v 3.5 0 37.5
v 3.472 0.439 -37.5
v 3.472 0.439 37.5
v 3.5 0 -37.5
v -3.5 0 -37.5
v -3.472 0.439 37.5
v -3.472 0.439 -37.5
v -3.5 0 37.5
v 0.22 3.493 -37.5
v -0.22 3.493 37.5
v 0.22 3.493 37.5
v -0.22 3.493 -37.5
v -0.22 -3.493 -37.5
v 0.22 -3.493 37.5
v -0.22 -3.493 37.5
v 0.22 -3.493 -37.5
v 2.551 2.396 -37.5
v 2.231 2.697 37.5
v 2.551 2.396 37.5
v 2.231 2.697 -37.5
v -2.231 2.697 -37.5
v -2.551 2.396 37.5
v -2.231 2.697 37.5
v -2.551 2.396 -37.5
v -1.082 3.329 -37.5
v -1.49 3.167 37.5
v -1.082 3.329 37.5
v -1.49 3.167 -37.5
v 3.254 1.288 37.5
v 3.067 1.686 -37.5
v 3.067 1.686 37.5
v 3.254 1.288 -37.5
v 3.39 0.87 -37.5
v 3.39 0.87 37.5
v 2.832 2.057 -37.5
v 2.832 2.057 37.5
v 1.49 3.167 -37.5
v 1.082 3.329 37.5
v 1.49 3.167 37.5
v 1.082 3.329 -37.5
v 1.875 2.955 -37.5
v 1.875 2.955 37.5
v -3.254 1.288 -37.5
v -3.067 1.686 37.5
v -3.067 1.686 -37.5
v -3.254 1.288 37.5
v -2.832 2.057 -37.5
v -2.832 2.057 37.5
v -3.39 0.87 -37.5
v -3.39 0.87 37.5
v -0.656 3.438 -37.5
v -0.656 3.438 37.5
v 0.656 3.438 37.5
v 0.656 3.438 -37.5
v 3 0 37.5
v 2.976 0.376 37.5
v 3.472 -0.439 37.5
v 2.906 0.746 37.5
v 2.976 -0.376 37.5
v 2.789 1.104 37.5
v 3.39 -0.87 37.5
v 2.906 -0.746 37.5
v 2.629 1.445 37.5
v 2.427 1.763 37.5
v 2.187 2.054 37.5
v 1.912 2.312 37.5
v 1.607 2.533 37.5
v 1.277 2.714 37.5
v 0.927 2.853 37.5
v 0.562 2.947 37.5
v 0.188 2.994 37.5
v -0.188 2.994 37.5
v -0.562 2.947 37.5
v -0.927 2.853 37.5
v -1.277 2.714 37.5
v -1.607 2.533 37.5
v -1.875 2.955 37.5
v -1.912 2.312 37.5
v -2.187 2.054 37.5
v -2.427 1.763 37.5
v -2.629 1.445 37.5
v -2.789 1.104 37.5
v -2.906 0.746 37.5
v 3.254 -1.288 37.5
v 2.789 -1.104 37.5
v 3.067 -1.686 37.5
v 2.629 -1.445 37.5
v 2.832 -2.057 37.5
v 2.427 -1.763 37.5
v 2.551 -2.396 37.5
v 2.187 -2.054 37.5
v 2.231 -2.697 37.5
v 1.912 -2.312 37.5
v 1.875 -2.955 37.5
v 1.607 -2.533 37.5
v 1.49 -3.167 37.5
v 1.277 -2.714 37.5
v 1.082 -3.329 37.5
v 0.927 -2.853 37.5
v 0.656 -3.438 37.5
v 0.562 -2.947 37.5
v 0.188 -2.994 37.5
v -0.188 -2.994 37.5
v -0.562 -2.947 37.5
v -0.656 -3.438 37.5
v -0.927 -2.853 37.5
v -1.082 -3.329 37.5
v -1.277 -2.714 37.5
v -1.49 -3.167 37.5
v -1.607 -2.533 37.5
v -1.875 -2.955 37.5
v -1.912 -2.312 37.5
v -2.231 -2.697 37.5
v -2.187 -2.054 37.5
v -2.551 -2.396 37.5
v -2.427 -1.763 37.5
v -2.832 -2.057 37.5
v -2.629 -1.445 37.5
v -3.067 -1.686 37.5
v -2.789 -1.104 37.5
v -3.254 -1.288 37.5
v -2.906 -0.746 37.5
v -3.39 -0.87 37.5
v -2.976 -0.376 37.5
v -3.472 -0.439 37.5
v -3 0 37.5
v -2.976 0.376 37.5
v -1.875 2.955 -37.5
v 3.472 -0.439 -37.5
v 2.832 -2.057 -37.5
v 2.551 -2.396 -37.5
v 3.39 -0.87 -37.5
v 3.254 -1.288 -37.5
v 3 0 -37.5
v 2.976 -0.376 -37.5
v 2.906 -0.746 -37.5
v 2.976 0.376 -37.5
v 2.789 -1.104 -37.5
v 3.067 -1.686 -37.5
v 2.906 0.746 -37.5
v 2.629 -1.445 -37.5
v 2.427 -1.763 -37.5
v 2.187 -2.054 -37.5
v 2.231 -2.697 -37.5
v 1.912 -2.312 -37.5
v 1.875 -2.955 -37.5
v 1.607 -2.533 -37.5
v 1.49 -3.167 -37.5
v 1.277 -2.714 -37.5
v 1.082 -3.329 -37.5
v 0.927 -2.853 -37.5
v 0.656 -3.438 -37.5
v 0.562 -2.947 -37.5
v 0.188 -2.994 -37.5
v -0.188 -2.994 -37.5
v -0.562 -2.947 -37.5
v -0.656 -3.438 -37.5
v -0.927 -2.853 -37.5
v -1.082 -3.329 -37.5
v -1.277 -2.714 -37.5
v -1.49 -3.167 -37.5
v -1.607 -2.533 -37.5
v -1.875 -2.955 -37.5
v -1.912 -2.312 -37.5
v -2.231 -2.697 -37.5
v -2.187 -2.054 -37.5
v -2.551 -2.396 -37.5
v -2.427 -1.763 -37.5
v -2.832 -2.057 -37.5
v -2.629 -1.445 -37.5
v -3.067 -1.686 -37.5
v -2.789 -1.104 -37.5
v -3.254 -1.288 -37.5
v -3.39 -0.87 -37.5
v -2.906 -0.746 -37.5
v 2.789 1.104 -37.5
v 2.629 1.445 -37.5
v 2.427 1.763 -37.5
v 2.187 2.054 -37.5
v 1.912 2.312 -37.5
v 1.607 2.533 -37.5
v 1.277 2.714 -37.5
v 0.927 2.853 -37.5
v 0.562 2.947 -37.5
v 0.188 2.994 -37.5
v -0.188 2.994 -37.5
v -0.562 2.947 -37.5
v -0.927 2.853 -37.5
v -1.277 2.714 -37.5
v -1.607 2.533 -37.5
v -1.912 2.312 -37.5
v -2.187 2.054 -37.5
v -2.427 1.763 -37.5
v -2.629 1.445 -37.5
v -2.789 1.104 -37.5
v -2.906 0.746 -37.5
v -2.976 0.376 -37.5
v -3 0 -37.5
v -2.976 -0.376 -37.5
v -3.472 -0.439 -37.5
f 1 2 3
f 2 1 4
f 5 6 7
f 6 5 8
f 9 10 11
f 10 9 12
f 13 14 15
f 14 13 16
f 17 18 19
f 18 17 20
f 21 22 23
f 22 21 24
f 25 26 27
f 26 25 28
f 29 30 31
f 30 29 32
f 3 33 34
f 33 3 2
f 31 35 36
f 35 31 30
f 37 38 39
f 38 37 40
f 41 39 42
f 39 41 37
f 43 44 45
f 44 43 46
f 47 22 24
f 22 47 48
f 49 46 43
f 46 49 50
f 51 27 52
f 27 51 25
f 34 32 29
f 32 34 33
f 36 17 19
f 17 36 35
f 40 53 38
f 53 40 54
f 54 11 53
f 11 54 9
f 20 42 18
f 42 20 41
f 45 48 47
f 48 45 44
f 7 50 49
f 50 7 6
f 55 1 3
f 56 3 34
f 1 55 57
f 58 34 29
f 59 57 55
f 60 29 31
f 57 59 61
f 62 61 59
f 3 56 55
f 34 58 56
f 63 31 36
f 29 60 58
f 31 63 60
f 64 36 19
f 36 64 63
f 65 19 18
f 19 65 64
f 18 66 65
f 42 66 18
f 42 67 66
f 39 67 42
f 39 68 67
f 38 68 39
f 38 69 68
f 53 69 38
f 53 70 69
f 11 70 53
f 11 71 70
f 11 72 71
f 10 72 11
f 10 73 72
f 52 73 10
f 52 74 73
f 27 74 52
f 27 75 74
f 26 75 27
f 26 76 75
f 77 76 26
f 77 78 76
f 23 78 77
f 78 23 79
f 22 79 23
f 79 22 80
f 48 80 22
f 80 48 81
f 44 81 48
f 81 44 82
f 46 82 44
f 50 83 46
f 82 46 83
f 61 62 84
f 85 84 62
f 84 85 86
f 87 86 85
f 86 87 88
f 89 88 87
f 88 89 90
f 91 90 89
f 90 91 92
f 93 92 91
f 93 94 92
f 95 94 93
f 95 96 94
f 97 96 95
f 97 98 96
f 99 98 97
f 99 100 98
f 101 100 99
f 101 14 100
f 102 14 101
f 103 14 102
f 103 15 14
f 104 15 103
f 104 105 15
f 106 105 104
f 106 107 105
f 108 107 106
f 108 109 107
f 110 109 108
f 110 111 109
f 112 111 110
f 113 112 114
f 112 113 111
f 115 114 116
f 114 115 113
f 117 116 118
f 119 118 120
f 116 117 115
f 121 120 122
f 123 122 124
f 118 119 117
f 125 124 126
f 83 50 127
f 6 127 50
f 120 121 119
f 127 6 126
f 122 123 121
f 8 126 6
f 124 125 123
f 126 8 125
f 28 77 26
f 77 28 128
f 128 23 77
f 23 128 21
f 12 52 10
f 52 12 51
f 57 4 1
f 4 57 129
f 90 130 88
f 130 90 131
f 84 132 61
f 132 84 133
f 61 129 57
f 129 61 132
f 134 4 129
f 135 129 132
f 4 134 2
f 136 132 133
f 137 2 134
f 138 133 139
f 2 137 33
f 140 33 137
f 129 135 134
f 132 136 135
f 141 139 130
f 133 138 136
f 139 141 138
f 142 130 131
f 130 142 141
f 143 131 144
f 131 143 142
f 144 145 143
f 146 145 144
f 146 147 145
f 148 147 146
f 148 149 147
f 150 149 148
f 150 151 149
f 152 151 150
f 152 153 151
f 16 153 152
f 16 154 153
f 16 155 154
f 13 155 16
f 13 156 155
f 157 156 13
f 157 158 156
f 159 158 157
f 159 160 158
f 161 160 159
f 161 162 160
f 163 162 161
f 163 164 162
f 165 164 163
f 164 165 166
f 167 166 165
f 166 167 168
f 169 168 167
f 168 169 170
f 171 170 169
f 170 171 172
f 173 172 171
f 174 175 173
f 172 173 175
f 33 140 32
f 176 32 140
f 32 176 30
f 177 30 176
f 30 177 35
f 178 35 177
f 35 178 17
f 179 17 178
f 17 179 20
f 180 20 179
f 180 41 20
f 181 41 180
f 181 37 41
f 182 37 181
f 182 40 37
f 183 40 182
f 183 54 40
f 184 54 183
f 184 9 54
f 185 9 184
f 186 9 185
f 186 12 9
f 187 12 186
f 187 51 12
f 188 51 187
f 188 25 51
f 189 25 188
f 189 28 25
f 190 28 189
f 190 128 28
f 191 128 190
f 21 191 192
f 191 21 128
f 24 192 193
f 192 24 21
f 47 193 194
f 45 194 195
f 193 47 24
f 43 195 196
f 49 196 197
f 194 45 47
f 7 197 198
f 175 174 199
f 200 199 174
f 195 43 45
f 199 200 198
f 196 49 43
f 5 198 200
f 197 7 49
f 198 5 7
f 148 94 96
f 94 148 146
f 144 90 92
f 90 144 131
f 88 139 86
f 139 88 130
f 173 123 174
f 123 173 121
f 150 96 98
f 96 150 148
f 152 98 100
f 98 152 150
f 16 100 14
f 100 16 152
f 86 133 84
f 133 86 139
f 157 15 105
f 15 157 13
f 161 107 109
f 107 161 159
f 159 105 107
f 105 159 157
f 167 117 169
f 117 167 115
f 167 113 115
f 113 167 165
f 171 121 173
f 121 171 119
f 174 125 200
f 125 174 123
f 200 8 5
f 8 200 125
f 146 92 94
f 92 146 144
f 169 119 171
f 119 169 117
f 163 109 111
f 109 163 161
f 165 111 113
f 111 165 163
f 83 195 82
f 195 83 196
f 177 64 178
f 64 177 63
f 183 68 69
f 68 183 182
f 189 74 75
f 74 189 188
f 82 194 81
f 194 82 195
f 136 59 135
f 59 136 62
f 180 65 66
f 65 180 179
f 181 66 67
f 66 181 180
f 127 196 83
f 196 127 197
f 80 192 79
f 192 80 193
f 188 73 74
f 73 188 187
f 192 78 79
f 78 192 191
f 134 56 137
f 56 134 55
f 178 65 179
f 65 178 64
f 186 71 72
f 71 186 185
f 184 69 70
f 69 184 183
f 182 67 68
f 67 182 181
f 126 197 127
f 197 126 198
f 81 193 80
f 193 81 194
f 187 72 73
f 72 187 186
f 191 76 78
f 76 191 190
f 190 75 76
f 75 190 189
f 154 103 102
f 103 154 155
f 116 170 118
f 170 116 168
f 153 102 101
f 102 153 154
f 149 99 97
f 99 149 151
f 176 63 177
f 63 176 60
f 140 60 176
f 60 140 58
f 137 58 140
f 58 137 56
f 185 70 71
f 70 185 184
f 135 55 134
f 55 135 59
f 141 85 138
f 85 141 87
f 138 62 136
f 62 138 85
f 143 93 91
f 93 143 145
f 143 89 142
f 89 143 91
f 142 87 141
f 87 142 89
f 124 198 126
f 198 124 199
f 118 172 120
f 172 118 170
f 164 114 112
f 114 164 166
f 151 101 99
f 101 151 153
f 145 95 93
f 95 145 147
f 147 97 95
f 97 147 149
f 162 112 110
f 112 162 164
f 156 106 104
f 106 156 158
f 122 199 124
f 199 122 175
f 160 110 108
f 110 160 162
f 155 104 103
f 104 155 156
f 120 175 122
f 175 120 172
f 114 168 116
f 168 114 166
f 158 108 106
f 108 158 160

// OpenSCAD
$fn = 50;


difference() {
	union() {
		translate(v = [0, 0, -37.5000000000]) {
			cylinder(h = 75, r = 3.5000000000);
		}
	}
	union() {
		translate(v = [0, 0, -100.0000000000]) {
			cylinder(h = 200, r = 3);
		}
	}
}
